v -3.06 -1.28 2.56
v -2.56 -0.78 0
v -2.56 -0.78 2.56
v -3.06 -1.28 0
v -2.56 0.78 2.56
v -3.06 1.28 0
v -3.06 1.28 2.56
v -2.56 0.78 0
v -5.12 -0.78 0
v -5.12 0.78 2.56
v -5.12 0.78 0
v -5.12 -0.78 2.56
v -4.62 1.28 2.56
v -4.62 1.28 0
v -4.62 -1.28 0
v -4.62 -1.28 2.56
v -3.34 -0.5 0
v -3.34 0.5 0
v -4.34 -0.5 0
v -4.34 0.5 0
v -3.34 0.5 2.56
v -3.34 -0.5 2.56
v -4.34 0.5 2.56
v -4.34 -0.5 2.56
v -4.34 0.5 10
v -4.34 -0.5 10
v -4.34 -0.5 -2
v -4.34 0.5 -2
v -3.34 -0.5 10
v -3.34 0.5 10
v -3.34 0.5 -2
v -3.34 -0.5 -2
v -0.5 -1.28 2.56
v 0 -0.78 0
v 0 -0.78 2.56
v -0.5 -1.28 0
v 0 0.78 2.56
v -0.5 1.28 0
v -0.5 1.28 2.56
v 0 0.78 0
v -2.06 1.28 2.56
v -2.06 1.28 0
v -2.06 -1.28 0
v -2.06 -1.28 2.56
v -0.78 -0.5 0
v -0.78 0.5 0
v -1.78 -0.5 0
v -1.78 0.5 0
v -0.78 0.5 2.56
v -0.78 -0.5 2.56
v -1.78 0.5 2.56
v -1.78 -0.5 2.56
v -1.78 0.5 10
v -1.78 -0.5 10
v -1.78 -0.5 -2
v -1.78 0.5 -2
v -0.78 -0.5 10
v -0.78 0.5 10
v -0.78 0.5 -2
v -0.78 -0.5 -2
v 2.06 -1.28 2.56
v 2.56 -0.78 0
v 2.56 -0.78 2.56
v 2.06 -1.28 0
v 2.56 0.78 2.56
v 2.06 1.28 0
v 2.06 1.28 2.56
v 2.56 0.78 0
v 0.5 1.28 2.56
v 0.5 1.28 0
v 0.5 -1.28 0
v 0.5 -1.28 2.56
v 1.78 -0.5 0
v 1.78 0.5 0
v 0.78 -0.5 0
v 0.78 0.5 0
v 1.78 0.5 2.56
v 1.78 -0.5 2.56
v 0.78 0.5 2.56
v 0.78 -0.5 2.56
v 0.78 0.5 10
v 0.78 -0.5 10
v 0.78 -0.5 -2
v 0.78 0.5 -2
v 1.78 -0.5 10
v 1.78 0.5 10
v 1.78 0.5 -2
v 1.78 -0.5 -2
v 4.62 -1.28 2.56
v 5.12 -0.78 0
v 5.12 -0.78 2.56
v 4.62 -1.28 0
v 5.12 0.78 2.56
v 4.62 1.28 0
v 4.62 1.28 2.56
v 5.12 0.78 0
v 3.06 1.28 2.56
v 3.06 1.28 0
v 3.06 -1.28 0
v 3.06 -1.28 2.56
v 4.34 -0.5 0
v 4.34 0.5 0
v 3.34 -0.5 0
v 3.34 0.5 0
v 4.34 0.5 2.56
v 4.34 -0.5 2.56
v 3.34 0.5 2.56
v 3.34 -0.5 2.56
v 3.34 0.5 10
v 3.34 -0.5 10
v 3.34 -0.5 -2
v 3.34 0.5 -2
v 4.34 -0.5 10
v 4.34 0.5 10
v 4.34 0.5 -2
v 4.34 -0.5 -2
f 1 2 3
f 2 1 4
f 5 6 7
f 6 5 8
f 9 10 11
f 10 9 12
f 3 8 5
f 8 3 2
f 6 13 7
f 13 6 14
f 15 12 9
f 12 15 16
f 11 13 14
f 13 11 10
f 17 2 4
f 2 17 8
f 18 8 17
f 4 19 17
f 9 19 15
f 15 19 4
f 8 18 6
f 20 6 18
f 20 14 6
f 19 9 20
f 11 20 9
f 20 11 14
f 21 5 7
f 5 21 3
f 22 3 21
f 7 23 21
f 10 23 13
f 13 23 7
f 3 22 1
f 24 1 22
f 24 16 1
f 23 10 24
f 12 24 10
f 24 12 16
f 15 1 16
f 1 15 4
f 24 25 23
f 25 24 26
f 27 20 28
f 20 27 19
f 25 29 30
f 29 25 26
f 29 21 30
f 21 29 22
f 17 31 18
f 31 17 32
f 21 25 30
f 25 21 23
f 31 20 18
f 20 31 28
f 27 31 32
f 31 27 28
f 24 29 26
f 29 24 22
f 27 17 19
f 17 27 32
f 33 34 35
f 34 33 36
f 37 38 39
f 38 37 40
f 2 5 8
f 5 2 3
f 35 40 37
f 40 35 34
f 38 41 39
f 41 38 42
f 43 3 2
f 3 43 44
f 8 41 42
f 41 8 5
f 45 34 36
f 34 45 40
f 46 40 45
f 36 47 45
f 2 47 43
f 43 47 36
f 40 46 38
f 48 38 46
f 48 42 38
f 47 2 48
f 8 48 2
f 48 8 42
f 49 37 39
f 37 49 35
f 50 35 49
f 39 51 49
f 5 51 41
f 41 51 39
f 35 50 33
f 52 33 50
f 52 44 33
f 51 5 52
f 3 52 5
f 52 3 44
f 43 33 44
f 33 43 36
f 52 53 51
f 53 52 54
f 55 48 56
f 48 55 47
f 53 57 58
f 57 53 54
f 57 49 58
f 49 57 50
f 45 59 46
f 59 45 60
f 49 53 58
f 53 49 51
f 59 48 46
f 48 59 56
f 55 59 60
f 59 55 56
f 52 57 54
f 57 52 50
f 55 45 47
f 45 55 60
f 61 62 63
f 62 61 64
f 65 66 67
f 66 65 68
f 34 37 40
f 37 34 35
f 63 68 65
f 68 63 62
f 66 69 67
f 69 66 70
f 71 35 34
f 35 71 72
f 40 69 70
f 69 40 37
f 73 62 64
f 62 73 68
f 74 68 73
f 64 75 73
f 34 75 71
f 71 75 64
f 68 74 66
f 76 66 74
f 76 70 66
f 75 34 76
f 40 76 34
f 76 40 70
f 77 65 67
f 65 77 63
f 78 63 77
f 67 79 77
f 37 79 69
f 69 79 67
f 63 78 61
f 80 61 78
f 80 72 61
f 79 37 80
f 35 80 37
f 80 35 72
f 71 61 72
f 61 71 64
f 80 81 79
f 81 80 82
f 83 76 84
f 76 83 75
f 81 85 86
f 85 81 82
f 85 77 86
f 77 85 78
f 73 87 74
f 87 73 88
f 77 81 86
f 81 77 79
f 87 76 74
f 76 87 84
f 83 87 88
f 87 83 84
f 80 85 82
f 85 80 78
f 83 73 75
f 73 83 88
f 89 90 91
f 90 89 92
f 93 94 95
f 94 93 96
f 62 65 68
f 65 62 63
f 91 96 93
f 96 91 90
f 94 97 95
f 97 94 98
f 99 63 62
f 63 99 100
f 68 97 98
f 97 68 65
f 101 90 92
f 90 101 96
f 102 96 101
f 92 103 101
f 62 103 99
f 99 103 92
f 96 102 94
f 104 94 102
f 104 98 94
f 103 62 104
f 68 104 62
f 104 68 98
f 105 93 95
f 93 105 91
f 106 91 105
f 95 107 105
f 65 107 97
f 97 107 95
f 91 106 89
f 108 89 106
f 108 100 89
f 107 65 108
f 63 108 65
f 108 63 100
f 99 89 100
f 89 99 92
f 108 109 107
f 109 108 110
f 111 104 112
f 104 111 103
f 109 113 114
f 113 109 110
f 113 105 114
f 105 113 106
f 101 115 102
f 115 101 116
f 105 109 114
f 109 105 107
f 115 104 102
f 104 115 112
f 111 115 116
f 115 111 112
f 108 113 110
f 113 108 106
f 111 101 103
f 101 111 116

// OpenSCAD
// file: openscad/pinheader.scad
module pinheader(black_size=2.56, pin_height=10, pin_count=1)
{
    for (i = [0:pin_count-1]) {
        translate([(i-(pin_count-1)/2)*black_size, 0, 0]) pinheader_1(black_size, pin_height);
    }
}

module pinheader_1(black_size=2.56, pin_height=10)
{
    // Black plastic
    black_w = black_size;
    black_d = black_size;
    black_h = black_size;
    black_cut = 0.5;
    
    black_points = [ [black_cut, 0],
                     [black_w - black_cut, 0],
                     [black_w, black_cut],
                     [black_w, black_d - black_cut],
                     [black_w - black_cut, black_d],
                     [black_cut, black_d],
                     [0, black_d - black_cut],
                     [0, black_cut] ];
    
    color("DarkSlateGray") translate([-black_size/2, -black_size/2, 0]) linear_extrude(black_h) polygon(black_points);
    
    // Metallic part
    pin_w = 1;
    pin_d = 1;
    pin_low_part = 2;
    
    color("Gold") translate([-pin_w/2, -pin_d/2, -pin_low_part]) cube([pin_w, pin_d, pin_height + pin_low_part]);
}
// main file
include <openscad/pinheader.scad>

pin_width  = 2.56;
pin_height = 10;
pin_count  = 4;

pinheader(pin_width, pin_height, pin_count);
